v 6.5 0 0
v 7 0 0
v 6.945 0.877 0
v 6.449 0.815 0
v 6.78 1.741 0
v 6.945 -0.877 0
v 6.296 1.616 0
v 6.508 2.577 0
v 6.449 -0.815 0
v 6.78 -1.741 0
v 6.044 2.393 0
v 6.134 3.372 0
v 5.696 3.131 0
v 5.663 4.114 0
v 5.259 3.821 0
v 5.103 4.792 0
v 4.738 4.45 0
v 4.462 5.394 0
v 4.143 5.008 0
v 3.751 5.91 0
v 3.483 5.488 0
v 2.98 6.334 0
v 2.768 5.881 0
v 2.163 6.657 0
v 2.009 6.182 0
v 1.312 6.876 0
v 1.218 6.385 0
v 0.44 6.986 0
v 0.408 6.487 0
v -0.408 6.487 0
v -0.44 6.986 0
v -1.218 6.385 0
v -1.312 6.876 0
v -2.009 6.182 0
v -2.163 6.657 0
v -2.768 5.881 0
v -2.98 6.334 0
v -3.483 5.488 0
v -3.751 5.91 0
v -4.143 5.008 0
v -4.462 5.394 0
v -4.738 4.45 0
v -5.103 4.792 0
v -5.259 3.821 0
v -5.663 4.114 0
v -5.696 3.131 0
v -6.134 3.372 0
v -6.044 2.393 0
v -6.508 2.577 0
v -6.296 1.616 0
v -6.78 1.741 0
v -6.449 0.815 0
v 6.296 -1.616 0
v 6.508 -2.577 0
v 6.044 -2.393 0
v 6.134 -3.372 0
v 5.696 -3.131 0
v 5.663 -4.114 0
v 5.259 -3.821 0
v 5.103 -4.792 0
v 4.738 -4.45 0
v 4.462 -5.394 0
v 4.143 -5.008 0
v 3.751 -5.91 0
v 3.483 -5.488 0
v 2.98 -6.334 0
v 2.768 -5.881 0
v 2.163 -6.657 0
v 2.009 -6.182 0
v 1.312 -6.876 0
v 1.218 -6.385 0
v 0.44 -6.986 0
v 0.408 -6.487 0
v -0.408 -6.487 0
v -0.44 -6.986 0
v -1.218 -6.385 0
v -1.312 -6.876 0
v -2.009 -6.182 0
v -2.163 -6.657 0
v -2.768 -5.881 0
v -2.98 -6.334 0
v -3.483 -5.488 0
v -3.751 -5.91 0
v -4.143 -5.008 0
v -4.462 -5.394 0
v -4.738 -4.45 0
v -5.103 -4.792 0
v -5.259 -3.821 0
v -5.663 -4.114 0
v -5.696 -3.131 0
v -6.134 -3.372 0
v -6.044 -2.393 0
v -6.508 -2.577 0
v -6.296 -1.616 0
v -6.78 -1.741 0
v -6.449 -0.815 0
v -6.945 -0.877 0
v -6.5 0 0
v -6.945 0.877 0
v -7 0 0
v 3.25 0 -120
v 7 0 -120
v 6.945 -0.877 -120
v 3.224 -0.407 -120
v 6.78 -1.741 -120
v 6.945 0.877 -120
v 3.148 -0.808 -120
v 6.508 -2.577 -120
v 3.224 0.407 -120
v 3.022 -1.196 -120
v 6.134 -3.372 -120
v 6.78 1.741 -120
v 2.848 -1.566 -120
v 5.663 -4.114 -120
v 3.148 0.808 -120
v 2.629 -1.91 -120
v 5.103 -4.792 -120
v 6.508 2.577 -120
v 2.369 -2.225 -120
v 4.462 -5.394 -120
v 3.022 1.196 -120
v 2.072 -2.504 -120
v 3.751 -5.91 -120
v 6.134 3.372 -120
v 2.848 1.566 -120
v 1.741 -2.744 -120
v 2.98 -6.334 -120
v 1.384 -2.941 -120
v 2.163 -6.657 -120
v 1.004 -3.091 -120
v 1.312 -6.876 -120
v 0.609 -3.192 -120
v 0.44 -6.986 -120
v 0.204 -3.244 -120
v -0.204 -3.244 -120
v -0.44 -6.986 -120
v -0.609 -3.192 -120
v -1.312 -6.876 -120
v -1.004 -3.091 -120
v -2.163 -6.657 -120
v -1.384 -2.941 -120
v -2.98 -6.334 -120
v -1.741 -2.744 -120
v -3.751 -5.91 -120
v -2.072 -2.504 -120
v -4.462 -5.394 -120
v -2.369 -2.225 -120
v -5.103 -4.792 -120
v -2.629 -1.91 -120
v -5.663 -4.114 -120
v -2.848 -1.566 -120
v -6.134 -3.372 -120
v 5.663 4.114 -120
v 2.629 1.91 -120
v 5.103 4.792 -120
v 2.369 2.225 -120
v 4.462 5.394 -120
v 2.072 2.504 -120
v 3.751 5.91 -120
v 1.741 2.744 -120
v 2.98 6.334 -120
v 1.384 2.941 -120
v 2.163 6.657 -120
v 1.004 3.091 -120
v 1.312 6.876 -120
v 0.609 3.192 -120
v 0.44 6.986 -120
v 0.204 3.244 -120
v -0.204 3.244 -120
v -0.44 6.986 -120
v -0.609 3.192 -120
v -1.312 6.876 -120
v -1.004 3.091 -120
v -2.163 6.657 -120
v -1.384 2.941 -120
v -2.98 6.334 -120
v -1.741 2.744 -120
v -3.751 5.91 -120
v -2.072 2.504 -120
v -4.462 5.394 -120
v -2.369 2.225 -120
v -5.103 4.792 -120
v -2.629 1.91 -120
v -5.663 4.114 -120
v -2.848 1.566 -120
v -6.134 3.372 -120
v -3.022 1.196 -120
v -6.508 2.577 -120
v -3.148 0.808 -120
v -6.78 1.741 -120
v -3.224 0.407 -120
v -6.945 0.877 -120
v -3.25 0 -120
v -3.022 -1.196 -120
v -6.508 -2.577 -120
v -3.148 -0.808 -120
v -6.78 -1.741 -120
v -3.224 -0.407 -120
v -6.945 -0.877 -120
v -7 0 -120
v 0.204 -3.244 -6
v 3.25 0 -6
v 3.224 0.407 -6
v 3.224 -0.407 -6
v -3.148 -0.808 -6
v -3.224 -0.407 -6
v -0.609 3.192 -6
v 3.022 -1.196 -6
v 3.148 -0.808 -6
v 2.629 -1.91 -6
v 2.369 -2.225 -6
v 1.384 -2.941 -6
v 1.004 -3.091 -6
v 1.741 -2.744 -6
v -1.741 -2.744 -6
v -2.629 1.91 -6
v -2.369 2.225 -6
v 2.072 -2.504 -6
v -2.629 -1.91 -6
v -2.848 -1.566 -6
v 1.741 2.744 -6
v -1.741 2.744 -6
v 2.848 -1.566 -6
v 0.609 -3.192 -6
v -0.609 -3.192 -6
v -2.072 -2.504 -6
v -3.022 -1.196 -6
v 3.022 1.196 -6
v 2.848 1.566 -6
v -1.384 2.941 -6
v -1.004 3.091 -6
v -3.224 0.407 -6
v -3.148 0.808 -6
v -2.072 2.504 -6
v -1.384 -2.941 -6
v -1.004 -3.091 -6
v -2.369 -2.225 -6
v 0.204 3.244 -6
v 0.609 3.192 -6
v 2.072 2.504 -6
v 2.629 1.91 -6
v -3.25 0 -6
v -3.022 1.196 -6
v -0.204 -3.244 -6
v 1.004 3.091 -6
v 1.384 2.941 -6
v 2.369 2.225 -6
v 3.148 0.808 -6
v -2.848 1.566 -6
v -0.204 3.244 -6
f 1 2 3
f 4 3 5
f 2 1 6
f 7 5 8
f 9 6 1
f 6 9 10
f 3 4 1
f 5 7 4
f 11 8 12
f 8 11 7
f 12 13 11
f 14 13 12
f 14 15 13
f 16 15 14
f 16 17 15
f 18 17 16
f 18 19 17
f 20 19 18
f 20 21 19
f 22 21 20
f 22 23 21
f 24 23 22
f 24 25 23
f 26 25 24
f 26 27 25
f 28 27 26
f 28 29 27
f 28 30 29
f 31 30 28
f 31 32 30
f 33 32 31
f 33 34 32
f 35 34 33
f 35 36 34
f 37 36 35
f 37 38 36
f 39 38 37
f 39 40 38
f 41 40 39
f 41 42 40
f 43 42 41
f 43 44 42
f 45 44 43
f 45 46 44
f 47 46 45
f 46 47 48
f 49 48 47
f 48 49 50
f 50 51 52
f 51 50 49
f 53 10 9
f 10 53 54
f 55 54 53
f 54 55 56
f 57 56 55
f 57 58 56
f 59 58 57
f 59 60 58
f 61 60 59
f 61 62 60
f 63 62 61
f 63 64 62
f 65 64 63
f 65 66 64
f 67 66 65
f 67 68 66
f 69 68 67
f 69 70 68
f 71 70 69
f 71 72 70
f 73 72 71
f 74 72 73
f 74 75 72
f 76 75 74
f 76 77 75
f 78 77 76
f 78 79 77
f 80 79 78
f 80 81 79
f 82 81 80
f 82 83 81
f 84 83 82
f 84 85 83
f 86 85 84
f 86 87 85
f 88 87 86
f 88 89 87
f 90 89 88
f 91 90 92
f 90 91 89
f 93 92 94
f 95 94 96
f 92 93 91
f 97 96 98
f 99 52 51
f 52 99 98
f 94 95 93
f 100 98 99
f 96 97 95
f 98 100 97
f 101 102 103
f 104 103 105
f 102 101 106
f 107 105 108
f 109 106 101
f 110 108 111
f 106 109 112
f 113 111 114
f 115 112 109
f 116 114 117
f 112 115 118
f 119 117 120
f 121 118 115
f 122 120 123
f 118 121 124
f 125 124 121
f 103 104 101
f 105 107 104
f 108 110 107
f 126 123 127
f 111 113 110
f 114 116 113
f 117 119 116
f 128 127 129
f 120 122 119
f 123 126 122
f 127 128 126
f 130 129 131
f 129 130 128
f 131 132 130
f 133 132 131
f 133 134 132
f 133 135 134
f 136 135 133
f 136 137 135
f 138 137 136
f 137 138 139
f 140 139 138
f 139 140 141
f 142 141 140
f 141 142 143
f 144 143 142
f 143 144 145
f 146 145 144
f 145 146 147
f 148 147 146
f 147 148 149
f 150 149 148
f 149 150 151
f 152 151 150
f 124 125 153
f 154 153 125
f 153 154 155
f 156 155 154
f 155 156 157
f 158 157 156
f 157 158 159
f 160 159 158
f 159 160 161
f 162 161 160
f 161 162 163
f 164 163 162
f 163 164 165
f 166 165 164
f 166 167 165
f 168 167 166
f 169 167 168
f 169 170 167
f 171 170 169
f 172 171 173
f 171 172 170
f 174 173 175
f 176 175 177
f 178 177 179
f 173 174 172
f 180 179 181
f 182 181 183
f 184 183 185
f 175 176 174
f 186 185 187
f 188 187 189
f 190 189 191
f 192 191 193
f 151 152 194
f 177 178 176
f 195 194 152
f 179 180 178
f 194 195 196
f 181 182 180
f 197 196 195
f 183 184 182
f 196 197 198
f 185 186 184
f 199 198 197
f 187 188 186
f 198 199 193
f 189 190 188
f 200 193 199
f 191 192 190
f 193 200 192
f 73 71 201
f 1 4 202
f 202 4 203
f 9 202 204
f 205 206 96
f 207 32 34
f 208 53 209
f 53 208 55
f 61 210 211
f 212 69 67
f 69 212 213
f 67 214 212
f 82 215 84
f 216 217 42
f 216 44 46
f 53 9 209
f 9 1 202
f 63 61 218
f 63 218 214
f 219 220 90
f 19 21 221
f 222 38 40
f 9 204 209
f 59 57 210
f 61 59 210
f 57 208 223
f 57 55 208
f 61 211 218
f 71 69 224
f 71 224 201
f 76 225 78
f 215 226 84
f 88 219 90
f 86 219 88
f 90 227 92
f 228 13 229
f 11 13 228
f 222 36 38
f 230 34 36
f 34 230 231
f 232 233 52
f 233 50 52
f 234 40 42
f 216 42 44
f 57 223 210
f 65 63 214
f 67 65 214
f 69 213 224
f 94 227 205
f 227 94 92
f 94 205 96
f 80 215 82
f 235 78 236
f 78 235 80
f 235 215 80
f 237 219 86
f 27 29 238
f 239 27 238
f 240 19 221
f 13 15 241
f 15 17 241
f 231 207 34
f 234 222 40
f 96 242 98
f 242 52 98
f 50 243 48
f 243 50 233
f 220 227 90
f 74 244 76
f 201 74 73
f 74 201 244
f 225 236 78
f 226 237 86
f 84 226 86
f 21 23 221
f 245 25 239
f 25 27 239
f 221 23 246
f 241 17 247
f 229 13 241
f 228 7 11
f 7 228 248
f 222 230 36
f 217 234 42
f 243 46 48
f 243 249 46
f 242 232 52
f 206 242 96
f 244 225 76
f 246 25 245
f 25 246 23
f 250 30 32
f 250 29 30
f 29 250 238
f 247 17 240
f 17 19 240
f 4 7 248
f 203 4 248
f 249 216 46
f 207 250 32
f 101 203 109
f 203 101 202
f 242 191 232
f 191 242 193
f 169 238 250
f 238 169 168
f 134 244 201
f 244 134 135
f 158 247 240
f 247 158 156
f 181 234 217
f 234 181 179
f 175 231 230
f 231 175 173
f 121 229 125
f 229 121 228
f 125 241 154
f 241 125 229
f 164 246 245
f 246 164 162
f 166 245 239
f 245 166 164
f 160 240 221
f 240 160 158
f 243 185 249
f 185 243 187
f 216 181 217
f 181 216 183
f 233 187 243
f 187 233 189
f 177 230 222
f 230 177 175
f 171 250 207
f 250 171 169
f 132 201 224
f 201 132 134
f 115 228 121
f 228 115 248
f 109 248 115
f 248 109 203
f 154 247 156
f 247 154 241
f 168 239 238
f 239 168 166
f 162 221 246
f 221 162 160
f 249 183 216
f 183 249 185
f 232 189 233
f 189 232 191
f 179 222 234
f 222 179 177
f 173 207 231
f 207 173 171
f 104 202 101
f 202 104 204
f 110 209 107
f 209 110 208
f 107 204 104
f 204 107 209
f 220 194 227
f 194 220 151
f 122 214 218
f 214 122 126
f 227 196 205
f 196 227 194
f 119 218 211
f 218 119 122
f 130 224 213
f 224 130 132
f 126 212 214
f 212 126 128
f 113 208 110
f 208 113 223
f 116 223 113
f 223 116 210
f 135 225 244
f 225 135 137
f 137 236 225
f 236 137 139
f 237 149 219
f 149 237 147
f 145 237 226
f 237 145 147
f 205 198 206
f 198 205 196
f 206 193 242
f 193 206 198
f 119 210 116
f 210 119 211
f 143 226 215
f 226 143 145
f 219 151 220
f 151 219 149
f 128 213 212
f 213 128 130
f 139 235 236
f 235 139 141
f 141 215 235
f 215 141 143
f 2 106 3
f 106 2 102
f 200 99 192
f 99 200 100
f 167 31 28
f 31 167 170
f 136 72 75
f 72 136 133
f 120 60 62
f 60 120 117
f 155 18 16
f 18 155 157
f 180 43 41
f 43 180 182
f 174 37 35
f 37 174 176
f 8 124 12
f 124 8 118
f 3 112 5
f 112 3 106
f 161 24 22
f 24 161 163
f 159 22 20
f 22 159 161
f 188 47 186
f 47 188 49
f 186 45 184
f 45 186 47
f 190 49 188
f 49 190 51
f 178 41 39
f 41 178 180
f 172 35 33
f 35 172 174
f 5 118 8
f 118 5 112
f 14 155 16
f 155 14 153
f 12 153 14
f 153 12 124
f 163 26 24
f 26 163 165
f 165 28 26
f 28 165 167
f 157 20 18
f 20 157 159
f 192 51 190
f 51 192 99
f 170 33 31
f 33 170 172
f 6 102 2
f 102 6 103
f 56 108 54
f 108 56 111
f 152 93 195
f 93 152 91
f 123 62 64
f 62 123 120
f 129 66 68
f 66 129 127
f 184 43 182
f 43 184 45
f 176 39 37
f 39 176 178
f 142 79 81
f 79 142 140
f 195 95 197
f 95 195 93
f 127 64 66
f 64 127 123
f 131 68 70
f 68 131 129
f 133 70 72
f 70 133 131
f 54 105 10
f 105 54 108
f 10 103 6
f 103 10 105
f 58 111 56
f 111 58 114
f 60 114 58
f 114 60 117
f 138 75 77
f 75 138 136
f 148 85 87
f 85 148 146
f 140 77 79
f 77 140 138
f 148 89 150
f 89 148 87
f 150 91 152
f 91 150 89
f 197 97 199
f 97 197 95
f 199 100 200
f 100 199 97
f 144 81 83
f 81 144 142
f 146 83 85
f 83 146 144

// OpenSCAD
$fn = 50;


difference() {
	union() {
		translate(v = [0, 0, -120.0000000000]) {
			cylinder(h = 120, r = 7.0000000000);
		}
		cylinder(h = 0, r = 10.0000000000);
	}
	union() {
		translate(v = [0, 0, 0]) {
			rotate(a = [0, 0, 0]) {
				difference() {
					union() {
						#translate(v = [0, 0, -120.0000000000]) {
							cylinder(h = 120, r = 2.2500000000);
						}
						#translate(v = [0, 0, -6]) {
							cylinder(h = 6, r1 = 3.2500000000, r2 = 6.5000000000);
						}
						#translate(v = [0, 0, -120.0000000000]) {
							cylinder(h = 120, r = 3.2500000000);
						}
						#translate(v = [0, 0, -120.0000000000]) {
							cylinder(h = 120, r = 2.2500000000);
						}
					}
					union();
				}
			}
		}
	}
}
